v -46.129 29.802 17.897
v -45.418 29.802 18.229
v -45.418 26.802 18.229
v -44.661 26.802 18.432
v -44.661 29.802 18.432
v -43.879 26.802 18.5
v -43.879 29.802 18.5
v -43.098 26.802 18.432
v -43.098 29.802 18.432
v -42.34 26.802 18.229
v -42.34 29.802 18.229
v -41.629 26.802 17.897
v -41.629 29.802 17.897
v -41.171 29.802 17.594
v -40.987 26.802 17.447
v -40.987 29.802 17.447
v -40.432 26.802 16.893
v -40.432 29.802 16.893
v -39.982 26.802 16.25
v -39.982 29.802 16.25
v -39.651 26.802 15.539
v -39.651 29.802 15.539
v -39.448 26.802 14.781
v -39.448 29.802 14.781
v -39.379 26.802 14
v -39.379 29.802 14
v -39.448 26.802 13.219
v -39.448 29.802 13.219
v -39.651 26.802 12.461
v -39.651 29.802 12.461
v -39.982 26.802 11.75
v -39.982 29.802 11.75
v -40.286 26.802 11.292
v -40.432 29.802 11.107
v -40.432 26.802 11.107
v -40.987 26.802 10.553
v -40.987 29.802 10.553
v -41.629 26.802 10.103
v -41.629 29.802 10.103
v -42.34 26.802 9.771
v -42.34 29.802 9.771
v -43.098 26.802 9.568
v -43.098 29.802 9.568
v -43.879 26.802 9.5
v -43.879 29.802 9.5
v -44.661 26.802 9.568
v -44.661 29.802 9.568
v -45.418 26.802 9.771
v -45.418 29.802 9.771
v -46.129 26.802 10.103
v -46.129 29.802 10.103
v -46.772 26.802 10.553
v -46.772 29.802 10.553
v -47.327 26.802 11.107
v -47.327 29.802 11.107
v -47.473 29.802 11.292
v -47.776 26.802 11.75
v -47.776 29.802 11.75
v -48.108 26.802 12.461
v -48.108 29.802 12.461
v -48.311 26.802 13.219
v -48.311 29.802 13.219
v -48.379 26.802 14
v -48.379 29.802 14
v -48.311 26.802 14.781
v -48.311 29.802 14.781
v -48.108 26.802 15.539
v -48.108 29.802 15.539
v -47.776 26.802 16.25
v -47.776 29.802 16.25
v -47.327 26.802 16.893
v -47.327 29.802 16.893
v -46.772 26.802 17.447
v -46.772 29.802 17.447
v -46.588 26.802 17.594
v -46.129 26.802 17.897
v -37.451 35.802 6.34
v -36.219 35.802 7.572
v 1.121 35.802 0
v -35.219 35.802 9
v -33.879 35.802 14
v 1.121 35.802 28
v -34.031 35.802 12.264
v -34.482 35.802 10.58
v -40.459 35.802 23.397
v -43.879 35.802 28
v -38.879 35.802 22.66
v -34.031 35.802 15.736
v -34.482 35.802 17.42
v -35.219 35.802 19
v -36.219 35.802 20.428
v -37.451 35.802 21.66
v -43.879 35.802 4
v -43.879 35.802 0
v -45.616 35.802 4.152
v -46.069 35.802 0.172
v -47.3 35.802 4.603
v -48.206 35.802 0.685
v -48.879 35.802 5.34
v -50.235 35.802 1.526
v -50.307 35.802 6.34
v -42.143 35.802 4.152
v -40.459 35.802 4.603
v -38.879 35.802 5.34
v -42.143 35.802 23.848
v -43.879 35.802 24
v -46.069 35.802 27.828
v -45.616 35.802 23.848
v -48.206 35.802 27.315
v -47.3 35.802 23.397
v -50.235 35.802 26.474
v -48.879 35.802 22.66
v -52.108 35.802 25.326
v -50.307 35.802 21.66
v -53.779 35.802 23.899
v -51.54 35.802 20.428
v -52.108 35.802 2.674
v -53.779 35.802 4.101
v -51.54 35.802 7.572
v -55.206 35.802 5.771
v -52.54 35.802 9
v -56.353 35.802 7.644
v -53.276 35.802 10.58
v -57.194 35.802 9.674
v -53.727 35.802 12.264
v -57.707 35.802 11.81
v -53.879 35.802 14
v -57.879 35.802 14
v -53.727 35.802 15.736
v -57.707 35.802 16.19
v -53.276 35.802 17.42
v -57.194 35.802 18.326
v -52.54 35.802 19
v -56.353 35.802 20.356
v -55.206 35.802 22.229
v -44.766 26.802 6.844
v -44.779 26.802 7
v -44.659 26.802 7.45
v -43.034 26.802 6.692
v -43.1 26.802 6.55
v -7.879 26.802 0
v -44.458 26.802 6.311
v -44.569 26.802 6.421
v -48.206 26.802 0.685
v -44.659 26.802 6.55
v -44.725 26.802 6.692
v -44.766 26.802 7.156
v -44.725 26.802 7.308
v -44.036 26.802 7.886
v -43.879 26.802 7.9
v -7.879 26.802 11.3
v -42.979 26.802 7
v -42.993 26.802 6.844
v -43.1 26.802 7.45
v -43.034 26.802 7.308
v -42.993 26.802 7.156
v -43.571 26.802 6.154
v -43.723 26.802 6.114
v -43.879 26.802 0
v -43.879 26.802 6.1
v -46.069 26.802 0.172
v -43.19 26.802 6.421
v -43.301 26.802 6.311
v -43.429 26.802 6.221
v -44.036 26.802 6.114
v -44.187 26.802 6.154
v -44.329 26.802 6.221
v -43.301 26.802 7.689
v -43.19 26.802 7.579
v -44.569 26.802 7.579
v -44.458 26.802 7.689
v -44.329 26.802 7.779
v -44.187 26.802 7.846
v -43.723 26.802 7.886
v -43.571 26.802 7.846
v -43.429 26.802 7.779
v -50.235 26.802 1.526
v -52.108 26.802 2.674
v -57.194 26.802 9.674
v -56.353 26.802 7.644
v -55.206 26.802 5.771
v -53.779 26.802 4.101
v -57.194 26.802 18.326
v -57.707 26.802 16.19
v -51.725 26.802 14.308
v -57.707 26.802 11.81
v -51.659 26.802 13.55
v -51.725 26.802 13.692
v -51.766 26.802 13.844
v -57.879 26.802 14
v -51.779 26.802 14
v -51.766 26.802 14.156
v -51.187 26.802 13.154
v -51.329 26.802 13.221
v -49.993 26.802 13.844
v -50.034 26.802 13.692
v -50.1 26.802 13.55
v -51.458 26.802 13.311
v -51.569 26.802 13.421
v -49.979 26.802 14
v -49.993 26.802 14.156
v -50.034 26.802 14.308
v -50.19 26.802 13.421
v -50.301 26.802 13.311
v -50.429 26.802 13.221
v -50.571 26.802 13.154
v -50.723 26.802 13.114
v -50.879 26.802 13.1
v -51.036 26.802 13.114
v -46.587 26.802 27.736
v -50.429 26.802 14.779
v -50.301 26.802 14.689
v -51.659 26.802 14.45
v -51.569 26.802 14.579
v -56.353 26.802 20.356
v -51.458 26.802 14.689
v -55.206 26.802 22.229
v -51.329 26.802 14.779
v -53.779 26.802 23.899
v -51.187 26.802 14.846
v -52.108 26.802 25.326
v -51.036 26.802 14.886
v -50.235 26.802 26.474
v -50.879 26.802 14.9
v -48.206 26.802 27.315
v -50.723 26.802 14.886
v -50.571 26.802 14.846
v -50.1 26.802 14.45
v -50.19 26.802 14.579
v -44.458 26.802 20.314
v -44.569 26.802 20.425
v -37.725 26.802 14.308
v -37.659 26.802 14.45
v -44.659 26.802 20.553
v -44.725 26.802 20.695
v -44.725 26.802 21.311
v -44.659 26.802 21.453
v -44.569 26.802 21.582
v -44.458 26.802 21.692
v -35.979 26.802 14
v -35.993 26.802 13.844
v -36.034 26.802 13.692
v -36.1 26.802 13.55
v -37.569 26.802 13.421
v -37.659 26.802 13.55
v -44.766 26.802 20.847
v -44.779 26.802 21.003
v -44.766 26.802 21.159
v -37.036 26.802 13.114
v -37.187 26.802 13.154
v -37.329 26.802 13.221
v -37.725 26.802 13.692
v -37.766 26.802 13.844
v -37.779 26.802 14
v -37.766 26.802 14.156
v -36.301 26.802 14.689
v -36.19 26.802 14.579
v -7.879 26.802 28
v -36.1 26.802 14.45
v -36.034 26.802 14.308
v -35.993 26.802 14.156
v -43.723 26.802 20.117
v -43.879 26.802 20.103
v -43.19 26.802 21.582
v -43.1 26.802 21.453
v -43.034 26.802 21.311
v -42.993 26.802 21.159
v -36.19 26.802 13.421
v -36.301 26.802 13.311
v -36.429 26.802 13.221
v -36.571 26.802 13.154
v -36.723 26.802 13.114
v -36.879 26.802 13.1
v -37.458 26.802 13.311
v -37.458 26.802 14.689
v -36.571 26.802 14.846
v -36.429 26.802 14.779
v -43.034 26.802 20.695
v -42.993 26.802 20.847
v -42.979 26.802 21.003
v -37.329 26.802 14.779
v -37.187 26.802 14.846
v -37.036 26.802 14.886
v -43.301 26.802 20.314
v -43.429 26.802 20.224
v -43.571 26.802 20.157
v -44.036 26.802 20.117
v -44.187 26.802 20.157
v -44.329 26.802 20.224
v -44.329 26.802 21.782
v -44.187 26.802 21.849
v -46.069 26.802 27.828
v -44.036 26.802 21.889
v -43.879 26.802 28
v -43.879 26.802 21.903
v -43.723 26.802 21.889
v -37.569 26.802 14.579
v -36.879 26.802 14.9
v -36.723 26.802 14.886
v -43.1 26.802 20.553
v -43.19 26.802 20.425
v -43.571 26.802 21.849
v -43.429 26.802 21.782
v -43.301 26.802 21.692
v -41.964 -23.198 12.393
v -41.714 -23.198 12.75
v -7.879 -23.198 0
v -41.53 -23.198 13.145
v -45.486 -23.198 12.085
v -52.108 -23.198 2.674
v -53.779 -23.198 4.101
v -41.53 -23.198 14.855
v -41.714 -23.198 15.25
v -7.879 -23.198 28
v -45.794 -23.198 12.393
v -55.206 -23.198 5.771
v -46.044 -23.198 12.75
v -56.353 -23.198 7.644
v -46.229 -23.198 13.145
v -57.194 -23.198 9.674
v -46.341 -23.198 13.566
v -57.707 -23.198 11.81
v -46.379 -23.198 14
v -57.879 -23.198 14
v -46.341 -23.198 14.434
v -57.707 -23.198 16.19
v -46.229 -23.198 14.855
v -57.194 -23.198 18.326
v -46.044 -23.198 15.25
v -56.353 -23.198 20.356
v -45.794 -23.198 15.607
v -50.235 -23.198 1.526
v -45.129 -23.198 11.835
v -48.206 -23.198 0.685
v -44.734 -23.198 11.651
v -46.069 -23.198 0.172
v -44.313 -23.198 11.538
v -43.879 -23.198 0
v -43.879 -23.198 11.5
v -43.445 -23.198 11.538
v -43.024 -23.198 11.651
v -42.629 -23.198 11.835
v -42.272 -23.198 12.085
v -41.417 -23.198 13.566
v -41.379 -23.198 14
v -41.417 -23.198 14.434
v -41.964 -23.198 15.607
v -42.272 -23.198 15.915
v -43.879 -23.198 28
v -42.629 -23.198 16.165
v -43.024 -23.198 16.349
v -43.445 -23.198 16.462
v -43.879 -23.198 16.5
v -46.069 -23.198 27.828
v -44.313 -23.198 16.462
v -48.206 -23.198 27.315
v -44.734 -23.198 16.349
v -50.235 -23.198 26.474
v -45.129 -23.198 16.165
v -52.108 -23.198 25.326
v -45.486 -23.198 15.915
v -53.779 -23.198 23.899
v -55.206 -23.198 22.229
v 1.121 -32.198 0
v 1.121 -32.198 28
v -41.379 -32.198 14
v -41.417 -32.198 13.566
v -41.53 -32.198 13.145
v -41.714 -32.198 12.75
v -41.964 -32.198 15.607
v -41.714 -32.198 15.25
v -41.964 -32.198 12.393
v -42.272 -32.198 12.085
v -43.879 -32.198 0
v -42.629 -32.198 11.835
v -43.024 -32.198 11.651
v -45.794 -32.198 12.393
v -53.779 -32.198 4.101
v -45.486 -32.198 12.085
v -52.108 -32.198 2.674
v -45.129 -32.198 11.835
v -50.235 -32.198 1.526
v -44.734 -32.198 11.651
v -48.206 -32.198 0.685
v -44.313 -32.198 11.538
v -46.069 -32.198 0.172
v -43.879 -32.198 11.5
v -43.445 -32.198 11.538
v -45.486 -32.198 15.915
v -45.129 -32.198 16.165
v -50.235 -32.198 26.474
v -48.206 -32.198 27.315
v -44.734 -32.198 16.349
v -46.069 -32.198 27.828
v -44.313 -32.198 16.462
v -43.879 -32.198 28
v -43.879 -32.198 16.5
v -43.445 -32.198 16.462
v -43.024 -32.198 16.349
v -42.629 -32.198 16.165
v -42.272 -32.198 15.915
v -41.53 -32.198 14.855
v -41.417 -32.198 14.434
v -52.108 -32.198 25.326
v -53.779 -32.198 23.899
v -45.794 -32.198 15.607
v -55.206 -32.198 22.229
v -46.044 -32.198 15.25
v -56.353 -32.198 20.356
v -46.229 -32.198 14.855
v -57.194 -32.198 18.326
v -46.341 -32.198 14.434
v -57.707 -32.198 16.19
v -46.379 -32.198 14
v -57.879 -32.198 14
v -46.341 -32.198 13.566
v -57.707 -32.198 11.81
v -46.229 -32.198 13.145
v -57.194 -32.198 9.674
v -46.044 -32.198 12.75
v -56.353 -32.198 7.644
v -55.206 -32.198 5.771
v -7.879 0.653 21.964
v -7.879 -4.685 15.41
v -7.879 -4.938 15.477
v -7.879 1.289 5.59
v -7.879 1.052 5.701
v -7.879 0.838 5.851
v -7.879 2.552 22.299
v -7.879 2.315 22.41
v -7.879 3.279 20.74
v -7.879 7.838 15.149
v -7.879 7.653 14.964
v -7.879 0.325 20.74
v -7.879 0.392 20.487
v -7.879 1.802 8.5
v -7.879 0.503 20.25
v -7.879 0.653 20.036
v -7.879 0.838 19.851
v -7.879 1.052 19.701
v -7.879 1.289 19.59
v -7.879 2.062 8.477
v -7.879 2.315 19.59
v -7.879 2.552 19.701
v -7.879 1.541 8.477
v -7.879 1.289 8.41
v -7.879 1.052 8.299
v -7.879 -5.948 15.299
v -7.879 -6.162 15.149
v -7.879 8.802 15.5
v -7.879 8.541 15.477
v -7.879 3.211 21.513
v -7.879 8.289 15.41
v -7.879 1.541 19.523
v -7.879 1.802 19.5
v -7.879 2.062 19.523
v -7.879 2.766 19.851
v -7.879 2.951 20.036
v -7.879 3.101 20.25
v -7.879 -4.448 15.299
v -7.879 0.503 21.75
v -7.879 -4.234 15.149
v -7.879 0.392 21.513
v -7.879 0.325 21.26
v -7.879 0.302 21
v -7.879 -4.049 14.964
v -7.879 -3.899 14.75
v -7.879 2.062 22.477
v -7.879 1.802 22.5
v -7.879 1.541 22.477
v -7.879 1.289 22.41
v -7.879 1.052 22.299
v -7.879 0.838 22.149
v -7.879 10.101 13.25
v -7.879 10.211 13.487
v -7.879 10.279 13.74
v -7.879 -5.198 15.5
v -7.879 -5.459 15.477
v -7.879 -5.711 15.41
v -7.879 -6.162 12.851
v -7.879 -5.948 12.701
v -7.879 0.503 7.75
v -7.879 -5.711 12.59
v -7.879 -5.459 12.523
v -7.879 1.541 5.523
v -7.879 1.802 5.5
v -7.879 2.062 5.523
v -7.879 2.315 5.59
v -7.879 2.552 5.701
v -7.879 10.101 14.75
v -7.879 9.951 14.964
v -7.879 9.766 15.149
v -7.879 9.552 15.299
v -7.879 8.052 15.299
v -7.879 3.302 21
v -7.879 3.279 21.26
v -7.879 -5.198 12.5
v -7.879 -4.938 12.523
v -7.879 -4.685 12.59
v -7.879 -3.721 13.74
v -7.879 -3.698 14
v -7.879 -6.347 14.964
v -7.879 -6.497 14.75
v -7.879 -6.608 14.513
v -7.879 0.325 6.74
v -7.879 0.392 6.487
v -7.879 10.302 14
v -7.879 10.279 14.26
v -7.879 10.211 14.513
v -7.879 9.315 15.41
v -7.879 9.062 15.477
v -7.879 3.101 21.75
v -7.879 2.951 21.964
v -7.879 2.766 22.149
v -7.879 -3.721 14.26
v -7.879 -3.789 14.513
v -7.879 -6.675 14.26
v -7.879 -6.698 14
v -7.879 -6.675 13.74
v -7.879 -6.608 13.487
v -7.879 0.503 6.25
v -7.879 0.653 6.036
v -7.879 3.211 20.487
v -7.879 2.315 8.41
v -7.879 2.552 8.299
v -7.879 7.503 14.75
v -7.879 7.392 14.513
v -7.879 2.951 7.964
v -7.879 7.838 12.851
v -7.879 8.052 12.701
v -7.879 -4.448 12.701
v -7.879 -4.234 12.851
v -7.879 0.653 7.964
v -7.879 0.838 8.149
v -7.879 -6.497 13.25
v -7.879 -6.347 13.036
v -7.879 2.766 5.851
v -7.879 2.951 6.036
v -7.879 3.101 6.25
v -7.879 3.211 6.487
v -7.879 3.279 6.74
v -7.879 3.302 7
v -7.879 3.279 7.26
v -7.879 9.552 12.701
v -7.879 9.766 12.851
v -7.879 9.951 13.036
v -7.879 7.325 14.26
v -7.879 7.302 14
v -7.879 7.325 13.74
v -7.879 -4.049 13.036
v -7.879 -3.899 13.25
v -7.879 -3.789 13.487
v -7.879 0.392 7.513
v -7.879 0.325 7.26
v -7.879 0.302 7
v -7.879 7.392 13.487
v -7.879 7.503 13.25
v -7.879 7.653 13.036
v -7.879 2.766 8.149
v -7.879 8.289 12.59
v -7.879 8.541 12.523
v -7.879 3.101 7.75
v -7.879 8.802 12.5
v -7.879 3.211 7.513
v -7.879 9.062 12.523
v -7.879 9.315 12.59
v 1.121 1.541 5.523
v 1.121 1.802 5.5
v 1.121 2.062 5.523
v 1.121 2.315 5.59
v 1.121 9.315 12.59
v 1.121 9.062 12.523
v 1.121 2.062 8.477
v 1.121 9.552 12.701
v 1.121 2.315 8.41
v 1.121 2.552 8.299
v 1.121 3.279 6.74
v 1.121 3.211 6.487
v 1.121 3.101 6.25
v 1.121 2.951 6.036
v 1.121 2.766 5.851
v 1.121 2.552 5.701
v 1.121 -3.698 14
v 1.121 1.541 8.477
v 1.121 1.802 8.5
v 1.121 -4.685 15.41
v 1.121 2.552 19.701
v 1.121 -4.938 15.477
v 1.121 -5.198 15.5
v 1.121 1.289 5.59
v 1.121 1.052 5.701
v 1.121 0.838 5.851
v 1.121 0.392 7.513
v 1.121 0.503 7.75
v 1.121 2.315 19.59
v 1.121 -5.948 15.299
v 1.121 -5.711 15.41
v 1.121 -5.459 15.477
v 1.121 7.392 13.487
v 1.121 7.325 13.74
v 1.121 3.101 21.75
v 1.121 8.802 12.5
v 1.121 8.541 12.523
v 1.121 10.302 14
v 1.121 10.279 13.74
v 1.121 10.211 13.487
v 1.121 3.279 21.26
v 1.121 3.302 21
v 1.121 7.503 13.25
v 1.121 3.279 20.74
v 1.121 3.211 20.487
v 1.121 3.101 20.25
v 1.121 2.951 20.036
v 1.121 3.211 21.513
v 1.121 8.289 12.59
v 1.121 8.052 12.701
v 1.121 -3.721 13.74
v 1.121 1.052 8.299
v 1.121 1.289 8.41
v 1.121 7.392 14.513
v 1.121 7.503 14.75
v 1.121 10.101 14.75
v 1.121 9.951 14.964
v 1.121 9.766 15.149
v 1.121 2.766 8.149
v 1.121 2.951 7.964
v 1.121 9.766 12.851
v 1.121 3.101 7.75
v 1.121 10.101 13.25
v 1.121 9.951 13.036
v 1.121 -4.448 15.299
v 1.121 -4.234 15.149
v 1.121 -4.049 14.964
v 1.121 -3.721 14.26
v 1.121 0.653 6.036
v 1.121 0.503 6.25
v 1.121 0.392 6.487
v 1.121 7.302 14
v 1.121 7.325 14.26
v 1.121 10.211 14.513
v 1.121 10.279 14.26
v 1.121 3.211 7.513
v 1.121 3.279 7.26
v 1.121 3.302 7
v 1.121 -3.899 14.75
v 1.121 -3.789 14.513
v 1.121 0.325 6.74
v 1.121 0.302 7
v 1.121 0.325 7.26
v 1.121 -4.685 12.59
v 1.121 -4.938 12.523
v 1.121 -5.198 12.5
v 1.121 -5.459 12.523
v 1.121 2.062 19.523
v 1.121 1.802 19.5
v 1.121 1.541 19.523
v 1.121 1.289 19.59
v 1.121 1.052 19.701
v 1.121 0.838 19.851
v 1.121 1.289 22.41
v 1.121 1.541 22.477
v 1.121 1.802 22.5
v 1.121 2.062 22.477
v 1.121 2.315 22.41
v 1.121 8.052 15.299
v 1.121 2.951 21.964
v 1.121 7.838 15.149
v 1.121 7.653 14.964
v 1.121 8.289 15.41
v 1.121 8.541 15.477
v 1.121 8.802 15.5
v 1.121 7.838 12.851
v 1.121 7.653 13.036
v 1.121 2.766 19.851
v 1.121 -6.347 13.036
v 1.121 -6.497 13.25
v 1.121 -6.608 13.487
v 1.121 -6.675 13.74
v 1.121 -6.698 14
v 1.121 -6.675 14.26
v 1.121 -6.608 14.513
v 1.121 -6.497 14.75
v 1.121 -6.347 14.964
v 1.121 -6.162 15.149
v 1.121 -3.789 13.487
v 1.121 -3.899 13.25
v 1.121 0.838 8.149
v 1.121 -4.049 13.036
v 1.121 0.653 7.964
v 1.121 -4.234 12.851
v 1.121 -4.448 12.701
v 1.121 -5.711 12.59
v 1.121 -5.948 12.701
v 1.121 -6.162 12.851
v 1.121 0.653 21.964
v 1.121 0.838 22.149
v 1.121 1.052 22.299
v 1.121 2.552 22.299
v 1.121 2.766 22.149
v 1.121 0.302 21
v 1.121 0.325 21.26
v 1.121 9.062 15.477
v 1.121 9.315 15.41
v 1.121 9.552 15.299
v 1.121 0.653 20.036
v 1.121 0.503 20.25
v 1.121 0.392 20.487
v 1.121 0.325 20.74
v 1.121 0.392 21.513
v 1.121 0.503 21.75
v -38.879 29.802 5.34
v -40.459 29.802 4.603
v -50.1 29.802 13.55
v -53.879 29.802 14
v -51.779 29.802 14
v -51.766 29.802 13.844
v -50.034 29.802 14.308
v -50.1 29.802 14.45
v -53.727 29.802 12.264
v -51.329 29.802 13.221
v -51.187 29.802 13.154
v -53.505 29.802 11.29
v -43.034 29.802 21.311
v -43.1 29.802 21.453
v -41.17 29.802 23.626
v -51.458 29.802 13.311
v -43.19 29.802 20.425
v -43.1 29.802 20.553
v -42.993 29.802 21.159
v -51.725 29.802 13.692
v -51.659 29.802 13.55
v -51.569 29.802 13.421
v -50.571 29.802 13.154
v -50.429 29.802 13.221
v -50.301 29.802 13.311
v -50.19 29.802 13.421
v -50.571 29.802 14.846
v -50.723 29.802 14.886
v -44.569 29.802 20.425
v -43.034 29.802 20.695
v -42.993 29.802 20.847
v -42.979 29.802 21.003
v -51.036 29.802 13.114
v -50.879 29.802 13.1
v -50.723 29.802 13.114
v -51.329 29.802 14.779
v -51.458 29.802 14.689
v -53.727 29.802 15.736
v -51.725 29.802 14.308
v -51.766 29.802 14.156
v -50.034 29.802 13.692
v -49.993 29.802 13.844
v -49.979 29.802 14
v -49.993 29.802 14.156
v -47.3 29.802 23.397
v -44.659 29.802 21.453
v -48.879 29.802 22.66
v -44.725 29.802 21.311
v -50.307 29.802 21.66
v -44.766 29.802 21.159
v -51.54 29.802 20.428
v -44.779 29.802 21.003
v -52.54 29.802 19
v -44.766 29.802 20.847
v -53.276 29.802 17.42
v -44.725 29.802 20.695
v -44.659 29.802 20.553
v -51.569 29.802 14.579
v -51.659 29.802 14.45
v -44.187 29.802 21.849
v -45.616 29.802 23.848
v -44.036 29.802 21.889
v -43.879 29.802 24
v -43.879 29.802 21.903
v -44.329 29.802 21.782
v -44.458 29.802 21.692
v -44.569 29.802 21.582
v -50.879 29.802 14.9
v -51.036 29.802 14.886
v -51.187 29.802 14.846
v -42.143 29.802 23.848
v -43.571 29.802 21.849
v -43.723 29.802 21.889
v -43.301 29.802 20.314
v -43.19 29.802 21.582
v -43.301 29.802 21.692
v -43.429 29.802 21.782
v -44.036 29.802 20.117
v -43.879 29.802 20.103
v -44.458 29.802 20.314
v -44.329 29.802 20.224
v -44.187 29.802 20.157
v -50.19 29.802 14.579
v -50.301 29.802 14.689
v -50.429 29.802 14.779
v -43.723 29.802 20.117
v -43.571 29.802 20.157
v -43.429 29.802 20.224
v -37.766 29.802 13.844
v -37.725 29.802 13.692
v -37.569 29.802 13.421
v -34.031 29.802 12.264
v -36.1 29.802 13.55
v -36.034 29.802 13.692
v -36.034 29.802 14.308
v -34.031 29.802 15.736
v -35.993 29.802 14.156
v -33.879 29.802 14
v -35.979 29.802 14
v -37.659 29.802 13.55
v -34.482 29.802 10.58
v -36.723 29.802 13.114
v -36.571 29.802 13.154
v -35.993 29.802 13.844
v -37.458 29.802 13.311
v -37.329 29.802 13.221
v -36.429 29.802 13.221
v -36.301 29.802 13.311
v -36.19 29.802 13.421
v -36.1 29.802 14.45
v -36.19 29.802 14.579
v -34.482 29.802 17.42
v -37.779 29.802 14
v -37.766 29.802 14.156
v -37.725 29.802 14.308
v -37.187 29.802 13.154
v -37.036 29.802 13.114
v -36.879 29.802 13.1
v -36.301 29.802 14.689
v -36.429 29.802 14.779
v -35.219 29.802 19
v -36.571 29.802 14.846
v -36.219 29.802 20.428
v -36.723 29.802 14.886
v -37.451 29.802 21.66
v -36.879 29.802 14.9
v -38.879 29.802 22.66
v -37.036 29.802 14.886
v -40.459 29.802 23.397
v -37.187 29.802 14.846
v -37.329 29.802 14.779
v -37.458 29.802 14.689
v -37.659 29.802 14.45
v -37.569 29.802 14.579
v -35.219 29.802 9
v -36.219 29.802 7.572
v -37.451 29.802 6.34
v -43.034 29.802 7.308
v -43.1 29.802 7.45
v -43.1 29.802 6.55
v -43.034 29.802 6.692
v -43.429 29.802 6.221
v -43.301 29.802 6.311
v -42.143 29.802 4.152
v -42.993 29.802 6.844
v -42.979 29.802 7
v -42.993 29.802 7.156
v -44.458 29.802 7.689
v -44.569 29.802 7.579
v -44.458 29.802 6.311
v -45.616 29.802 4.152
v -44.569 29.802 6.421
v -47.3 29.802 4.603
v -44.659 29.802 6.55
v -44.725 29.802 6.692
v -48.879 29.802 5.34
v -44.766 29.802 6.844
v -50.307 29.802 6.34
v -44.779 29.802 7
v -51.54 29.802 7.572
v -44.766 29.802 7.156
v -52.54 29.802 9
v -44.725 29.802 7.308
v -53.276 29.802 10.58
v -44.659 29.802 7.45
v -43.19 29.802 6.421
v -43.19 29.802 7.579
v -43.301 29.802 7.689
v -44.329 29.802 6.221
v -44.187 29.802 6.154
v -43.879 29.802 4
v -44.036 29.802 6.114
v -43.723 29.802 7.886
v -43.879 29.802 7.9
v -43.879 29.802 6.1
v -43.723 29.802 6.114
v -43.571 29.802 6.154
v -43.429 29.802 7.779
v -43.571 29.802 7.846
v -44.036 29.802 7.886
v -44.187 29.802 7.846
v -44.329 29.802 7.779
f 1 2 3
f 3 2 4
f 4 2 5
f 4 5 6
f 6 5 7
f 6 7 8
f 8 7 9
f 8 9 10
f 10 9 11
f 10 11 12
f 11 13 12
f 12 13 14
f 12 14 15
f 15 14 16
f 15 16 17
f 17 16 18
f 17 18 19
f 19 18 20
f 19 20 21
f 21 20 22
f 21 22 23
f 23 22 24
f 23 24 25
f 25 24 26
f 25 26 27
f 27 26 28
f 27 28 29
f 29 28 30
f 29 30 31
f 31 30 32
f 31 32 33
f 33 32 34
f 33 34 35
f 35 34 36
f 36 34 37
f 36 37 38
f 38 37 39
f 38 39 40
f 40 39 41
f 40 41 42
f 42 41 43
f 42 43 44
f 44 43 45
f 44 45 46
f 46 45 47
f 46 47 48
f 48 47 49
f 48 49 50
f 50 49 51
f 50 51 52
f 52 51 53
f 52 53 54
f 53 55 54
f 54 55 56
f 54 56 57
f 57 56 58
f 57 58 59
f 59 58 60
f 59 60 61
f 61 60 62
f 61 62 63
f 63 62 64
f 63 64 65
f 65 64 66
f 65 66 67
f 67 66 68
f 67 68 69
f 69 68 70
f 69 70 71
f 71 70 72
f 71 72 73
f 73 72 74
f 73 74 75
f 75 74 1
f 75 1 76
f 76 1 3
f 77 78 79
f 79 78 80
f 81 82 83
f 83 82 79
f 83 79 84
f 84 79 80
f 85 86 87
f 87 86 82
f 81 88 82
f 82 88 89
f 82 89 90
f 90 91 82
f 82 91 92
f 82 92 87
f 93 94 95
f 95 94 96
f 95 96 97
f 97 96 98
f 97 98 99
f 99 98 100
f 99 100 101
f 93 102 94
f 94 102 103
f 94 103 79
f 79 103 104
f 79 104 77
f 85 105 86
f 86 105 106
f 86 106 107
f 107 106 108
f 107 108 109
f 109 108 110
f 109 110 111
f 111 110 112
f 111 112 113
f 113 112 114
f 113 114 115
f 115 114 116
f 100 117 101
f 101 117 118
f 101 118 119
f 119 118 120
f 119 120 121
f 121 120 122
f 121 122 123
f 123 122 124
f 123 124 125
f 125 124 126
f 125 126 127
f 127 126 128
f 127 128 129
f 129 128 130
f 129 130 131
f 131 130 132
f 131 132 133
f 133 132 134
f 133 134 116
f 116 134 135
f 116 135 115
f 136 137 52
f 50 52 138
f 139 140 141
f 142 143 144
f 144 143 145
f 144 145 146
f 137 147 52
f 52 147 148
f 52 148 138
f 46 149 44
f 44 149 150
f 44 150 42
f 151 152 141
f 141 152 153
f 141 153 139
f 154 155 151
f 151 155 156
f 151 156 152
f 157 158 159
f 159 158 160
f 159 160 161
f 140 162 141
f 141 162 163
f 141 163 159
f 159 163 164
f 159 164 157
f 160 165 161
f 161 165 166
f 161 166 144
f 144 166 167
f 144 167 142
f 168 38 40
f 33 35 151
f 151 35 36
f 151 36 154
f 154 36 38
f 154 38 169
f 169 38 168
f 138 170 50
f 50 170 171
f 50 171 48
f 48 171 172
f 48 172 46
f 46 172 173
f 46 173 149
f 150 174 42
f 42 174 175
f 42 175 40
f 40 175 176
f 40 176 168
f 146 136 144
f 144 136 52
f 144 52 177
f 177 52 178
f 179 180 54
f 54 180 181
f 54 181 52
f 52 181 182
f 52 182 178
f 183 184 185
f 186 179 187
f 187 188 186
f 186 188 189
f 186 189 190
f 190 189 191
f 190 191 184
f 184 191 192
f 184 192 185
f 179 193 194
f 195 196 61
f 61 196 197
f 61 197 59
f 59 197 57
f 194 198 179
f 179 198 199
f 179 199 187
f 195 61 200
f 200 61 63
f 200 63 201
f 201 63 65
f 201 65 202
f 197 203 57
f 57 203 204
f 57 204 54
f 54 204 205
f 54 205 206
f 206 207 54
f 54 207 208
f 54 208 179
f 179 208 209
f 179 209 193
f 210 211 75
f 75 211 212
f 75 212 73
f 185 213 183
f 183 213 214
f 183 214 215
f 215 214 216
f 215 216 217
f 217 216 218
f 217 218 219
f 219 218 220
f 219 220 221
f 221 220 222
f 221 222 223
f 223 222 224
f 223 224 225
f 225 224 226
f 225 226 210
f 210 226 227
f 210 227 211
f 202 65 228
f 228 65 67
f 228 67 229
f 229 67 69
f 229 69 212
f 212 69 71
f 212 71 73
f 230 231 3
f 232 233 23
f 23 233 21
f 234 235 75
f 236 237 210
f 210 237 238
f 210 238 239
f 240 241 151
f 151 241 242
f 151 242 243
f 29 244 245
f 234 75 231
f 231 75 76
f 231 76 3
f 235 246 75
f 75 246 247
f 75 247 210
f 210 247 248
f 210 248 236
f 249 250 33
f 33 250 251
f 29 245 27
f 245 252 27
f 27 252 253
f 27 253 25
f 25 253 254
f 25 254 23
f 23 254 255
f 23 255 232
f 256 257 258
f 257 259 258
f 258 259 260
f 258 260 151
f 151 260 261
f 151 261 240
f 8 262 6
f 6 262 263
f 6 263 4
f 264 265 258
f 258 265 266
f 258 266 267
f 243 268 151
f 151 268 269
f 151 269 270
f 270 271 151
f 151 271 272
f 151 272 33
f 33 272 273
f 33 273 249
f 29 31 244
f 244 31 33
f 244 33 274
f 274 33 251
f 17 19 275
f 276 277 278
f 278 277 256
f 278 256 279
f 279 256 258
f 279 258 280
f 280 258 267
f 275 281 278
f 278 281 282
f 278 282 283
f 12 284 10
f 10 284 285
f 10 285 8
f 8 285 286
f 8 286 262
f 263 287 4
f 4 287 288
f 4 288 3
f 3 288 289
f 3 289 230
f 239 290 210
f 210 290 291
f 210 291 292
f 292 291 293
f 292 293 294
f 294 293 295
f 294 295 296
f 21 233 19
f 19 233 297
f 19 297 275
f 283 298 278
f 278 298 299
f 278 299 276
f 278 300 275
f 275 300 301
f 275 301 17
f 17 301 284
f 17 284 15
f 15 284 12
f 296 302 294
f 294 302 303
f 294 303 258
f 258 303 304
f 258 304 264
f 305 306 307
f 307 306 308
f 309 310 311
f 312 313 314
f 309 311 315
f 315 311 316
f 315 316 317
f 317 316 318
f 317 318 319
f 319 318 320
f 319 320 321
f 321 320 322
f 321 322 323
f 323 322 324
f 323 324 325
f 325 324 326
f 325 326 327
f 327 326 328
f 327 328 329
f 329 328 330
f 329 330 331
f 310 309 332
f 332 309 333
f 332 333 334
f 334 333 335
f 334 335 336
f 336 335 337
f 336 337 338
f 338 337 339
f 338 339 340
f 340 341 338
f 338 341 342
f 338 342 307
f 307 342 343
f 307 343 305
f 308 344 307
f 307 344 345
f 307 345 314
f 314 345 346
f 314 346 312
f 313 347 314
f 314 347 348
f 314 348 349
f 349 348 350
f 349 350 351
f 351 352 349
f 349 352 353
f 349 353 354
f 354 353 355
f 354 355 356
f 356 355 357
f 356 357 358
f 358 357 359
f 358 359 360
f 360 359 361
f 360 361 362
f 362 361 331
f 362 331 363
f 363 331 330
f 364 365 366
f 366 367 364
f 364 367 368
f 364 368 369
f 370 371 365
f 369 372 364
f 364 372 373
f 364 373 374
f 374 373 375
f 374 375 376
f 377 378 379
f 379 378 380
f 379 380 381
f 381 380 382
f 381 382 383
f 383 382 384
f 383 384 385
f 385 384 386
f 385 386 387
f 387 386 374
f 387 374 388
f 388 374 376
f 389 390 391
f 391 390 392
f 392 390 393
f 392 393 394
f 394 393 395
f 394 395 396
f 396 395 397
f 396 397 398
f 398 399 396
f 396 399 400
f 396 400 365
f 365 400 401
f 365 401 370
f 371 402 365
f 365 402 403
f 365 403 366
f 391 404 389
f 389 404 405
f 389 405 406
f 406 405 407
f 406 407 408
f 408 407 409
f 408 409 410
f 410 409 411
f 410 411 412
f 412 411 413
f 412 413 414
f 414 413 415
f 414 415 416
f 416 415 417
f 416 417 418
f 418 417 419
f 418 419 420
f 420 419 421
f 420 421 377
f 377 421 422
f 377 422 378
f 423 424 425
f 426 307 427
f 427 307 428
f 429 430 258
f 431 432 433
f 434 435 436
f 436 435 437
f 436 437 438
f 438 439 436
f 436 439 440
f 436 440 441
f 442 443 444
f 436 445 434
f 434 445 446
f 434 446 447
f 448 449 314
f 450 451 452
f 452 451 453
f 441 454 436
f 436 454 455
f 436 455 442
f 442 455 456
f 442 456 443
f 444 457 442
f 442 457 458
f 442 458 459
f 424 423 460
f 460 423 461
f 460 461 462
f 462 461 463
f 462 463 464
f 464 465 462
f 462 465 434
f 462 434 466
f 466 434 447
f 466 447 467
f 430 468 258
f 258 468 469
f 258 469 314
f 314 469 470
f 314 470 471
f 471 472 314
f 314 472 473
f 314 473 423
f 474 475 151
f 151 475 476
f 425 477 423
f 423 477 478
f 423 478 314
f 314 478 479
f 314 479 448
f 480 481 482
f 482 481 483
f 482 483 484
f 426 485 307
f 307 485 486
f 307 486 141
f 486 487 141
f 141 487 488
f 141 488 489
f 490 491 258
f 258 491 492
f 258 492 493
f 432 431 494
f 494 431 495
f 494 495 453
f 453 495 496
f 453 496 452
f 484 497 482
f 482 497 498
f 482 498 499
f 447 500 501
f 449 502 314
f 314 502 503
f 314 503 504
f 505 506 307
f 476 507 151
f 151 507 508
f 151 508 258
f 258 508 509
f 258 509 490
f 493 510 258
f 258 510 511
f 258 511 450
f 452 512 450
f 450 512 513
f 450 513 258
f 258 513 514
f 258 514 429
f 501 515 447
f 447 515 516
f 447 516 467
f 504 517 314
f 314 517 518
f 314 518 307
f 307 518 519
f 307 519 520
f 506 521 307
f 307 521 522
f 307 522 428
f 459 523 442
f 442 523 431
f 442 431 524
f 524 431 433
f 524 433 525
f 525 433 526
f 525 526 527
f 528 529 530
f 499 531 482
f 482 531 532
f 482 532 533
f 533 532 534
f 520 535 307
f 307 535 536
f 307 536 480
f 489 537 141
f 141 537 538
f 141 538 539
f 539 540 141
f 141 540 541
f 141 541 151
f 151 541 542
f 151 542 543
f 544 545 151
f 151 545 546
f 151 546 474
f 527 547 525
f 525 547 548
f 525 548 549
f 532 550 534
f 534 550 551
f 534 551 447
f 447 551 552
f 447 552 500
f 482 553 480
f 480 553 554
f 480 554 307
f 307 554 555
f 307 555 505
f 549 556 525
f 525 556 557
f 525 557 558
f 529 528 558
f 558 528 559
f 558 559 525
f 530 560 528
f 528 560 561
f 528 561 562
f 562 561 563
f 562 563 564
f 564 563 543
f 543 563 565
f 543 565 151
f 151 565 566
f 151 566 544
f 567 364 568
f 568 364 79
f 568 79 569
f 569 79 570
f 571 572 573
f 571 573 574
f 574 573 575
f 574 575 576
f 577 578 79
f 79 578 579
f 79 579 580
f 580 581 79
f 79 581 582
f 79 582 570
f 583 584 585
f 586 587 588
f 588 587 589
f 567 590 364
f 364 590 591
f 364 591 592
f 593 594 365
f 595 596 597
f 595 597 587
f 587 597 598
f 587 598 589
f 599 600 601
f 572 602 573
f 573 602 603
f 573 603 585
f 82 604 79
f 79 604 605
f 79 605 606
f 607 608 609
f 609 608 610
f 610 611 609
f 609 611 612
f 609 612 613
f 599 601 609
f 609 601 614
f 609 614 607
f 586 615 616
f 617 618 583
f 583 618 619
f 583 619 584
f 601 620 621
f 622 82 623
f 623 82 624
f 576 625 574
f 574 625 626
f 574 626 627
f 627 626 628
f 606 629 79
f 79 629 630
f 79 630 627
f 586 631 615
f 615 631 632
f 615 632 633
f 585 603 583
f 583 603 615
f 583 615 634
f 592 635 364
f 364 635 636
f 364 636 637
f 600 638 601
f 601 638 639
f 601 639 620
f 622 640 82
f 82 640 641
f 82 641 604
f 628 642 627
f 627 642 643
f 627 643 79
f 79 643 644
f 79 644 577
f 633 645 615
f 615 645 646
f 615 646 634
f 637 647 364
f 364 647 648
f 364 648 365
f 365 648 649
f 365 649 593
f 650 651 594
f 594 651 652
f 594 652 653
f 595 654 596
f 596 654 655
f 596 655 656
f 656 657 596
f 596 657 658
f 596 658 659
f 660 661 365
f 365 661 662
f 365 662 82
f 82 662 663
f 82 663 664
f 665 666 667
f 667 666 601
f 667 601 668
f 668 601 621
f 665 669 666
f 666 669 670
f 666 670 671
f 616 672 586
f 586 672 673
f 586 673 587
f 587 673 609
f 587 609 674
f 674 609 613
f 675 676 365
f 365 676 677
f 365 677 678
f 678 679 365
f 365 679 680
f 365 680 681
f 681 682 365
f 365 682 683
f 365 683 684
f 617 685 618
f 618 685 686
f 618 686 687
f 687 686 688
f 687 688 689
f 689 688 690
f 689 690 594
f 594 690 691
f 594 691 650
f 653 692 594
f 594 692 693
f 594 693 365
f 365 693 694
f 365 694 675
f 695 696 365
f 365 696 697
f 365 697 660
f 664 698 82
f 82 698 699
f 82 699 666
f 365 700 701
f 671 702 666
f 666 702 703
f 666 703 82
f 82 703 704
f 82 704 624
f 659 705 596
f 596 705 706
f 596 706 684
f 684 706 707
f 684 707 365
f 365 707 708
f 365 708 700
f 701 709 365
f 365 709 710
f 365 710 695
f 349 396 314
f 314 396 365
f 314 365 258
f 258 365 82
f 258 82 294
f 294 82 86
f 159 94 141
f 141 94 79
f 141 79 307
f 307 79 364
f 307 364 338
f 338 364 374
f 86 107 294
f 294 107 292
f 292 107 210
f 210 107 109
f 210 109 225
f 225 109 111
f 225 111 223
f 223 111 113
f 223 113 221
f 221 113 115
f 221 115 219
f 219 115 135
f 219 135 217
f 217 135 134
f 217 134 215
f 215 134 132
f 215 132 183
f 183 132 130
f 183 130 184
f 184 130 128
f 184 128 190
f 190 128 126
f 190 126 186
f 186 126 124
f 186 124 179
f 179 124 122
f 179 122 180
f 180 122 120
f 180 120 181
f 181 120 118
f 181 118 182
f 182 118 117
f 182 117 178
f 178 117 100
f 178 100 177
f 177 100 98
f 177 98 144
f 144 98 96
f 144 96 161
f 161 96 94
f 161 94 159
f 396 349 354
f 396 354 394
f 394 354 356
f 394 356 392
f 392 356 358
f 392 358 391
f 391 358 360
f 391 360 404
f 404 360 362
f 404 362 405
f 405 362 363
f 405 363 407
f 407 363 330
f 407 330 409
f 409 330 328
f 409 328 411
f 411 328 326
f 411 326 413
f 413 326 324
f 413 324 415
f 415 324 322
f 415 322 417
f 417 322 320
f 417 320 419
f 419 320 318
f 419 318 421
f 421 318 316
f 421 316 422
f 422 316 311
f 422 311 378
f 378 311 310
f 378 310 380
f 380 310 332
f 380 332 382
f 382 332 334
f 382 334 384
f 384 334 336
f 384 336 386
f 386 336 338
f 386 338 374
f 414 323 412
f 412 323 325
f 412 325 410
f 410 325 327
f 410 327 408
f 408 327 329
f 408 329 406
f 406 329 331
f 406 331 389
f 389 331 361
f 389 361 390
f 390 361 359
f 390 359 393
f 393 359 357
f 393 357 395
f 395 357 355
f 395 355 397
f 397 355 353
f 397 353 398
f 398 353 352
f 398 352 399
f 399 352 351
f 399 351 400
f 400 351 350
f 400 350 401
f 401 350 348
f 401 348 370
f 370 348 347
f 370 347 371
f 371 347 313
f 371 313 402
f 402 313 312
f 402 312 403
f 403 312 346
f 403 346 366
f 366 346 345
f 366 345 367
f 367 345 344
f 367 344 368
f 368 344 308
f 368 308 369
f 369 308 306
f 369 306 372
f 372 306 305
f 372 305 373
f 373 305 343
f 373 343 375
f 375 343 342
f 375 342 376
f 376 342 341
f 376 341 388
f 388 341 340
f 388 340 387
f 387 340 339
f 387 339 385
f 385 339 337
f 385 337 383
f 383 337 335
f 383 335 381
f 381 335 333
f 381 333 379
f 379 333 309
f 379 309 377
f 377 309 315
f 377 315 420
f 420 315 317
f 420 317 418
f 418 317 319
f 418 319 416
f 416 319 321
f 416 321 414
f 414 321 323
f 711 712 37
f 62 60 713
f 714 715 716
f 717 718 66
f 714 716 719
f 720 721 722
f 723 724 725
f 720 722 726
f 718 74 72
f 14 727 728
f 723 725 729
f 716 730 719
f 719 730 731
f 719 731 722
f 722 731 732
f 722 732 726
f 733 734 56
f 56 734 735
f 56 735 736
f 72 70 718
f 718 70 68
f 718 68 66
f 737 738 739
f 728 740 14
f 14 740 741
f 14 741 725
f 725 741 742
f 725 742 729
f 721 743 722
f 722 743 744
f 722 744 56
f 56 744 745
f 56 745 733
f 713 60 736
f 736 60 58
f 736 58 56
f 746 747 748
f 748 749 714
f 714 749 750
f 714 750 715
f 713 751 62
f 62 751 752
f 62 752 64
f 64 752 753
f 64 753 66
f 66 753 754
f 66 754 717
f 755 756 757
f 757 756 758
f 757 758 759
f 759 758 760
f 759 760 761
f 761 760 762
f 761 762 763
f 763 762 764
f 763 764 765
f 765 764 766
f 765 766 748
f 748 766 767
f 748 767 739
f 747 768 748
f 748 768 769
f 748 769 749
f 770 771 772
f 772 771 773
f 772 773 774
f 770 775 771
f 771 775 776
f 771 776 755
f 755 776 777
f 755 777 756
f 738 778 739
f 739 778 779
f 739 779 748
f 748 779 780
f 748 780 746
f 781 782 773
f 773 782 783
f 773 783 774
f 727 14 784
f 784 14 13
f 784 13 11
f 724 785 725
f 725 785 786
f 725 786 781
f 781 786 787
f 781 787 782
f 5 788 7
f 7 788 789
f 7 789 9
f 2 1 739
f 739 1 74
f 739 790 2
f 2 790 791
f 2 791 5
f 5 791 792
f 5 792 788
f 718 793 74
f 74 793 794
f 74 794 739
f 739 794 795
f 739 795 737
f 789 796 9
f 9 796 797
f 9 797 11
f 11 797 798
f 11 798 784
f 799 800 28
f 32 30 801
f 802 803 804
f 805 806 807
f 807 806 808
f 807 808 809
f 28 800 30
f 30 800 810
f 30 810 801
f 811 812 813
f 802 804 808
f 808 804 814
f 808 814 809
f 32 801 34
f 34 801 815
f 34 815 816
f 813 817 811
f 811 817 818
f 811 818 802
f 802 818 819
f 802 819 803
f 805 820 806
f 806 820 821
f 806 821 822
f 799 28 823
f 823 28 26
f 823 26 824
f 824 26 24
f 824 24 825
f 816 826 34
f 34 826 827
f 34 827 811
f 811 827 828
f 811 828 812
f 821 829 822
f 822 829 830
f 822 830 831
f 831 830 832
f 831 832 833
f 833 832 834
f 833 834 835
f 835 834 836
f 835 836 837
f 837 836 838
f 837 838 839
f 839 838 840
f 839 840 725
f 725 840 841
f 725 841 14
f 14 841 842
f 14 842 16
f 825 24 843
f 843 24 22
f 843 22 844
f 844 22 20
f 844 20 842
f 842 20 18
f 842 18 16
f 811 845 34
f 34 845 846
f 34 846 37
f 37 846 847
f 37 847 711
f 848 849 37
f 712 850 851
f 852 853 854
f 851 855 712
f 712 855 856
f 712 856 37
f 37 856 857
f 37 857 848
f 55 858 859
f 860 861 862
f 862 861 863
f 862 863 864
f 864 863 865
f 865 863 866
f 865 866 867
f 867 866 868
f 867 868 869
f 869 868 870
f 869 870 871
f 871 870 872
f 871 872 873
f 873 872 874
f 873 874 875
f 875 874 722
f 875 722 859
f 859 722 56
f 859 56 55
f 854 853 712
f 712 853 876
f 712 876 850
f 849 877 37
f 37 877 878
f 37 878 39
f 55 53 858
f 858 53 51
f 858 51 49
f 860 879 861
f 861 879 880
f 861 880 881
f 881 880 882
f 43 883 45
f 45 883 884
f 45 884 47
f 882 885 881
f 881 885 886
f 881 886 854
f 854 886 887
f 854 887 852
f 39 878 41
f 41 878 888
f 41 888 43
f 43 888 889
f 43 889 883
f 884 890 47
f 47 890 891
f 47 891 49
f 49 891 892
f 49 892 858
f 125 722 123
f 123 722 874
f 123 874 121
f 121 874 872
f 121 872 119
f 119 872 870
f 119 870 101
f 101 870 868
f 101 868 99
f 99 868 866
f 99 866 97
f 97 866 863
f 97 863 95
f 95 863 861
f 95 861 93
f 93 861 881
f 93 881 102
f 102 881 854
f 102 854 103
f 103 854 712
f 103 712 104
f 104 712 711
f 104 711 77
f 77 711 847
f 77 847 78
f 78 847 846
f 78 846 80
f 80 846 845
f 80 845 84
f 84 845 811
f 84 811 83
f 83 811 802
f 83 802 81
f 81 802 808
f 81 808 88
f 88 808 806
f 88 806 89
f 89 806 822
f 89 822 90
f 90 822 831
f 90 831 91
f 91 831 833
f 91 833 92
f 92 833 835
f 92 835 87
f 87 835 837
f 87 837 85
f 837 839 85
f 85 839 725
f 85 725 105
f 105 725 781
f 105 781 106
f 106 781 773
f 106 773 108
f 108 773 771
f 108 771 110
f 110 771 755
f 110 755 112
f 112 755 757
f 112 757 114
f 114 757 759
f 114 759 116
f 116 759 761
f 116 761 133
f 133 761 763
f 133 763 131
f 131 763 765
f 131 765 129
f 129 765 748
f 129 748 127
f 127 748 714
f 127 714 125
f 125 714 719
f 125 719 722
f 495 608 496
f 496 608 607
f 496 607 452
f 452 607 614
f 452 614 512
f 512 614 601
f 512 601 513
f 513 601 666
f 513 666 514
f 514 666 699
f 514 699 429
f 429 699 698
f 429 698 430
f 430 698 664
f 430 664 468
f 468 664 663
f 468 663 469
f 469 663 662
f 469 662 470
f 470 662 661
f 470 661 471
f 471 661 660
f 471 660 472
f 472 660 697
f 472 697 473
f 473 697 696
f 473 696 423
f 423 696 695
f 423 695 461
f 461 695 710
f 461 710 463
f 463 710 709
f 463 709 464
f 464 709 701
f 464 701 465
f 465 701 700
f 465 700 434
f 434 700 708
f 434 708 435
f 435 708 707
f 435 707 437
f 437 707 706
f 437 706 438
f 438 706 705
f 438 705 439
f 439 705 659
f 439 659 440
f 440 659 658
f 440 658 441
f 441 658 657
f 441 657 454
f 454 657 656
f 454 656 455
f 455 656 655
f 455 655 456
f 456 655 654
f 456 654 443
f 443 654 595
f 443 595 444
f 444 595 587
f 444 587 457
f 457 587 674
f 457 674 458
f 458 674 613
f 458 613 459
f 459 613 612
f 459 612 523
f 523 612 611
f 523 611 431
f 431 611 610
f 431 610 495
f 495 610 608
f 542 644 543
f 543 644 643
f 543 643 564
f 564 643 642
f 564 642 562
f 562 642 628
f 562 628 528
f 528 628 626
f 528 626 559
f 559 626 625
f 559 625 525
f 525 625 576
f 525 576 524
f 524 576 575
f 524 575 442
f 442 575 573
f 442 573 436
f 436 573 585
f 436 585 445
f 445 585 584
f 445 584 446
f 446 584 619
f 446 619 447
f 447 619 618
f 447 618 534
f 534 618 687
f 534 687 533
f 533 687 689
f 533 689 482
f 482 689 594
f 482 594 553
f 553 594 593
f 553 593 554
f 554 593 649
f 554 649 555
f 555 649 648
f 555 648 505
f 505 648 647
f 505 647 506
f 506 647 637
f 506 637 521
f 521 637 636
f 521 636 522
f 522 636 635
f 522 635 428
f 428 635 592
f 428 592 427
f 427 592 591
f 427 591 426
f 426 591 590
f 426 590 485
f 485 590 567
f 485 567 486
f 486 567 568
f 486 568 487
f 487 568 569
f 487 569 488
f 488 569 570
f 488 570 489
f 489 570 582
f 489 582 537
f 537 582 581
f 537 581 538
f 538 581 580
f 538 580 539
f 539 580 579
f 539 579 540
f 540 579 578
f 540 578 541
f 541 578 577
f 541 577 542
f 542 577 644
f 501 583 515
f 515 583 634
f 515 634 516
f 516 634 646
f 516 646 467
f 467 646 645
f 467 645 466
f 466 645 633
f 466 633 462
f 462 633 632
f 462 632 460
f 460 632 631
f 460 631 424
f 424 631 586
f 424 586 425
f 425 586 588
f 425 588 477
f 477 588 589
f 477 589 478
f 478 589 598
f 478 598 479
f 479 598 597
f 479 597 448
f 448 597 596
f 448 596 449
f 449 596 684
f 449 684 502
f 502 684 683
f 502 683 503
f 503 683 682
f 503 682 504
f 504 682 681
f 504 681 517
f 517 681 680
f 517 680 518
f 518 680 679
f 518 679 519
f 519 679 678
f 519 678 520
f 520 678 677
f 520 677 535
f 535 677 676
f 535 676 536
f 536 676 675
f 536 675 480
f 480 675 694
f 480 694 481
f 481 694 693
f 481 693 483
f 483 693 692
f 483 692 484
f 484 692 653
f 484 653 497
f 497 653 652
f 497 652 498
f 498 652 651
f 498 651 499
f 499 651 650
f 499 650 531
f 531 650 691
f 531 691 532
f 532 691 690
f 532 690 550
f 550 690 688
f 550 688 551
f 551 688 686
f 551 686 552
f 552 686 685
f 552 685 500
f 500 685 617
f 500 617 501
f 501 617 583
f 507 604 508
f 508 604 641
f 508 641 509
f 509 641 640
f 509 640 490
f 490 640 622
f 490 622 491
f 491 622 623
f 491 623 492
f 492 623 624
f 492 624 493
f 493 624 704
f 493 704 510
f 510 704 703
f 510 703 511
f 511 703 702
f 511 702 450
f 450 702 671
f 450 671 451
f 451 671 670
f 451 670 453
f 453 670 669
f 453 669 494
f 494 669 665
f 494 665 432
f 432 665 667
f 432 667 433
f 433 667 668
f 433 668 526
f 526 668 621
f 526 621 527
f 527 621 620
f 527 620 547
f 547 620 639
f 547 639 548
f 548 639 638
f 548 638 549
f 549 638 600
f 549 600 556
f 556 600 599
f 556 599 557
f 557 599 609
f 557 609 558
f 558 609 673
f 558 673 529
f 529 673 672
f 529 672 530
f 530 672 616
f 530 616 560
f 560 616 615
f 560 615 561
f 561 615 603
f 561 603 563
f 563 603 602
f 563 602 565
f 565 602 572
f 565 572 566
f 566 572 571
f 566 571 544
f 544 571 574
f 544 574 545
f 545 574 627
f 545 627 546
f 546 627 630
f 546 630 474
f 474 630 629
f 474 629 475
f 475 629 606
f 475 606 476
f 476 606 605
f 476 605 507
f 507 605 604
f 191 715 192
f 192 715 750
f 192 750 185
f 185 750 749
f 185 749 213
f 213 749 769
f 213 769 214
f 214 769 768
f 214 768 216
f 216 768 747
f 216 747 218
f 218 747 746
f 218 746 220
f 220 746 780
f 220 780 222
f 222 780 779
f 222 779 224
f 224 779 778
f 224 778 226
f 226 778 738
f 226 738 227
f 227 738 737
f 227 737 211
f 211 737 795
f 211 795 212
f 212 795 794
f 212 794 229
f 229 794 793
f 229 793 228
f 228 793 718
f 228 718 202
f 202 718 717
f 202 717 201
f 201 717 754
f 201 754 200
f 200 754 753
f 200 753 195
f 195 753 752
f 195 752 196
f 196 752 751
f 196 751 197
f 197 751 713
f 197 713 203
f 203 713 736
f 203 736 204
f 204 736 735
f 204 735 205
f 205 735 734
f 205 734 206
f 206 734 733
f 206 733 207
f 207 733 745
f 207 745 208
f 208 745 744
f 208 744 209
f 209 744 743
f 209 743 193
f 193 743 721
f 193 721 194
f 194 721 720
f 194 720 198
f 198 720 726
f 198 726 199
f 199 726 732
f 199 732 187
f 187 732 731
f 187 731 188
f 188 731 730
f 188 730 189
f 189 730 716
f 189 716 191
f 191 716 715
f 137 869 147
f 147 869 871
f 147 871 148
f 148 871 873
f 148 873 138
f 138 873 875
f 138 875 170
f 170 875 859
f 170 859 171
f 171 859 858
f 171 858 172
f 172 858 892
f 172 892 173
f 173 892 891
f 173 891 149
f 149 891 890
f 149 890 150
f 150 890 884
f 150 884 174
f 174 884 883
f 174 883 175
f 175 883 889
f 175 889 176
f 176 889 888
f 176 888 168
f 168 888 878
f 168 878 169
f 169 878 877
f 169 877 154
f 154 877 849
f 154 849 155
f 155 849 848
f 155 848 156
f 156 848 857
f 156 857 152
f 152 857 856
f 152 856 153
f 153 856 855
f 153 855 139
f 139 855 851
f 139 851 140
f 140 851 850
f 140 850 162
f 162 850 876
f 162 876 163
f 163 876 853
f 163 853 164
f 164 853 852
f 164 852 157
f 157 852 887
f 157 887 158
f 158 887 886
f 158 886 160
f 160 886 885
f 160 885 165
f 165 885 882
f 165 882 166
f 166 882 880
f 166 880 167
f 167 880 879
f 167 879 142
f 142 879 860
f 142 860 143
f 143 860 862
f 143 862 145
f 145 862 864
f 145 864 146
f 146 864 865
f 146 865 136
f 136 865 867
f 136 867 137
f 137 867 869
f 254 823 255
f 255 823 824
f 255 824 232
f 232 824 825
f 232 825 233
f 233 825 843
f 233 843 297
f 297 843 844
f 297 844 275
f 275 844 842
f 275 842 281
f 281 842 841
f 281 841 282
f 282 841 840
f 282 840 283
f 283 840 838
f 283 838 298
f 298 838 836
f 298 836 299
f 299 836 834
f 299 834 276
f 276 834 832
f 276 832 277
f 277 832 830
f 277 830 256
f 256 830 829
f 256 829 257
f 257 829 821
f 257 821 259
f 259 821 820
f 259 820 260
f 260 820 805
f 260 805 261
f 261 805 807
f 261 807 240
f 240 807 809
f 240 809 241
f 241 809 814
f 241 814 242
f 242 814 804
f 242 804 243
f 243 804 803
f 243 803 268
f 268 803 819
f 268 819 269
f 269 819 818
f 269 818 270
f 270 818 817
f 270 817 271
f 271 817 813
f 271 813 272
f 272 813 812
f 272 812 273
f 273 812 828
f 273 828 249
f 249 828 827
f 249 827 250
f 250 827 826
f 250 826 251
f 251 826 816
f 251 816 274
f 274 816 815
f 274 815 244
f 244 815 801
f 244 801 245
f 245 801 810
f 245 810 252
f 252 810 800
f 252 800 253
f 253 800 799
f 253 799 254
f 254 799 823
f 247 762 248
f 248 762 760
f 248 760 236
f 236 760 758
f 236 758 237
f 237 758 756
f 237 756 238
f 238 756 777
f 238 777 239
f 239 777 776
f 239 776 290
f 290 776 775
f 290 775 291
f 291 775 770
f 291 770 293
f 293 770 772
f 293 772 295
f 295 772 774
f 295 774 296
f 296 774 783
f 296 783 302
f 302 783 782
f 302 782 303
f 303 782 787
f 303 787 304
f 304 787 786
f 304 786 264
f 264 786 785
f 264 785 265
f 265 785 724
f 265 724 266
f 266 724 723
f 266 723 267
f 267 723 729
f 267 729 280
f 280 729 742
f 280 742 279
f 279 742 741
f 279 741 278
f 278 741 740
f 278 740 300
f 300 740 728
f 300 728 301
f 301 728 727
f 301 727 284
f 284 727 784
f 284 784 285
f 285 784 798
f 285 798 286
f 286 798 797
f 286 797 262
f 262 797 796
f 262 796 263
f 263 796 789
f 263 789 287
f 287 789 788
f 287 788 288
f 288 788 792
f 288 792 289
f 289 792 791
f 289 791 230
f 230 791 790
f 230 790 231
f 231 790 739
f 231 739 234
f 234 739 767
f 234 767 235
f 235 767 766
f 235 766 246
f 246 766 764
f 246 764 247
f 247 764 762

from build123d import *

# Parameters (mm, degrees)
SKETCH1_W           = 50
SKETCH1_H           = 9
SKETCH1_W_2         = 9
SKETCH1_H_2         = 68
BOSS_EXTRUDE1_DEPTH = 28
SKETCH2_R           = 2.5
CUT_EXTRUDE2_DEPTH  = 100
SKETCH4_R           = 4.5
CUT_EXTRUDE3_DEPTH  = 10
SKETCH5_R           = 10
CUT_EXTRUDE4_DEPTH  = 6
SKETCH7_R           = 1.5
CUT_EXTRUDE5_DEPTH  = 10
CUT_EXTRUDE6_DEPTH  = 10


with BuildPart() as part:
    # Sketch1 → Boss-Extrude1 (new body)
    with BuildSketch(Plane.XY):
        with Locations((-32.879310345, 31.301724138)):
            Rectangle(SKETCH1_W, SKETCH1_H)
        with Locations((-3.379310345, 1.801724138)):
            Rectangle(SKETCH1_W_2, SKETCH1_H_2)
        with Locations((-32.879310345, -27.698275862)):
            Rectangle(SKETCH1_W, SKETCH1_H)
    extrude(amount=BOSS_EXTRUDE1_DEPTH)

    # Sketch2 → Cut-Extrude2 (cut)
    with BuildSketch(Plane(origin=(0, 35.801724138, 0), x_dir=(1, 0, 0), z_dir=(0, 1, 0))):
        with Locations(Location((-43.879310345, -14, 0), (0, 0, 180))):
            Circle(SKETCH2_R)
        with BuildLine():
            ThreePointArc((-43.879310345, -28), (-53.778805281, -23.899494937), (-57.879310345, -14))
            Line((-57.879310345, -14), (-57.879310345, -28))
            Line((-57.879310345, -28), (-43.879310345, -28))
        make_face()
        with BuildLine():
            Line((-57.879310345, 0), (-57.879310345, -14))
            ThreePointArc((-57.879310345, -14), (-53.778805281, -4.100505063), (-43.879310345, 0))
            Line((-43.879310345, 0), (-57.879310345, 0))
        make_face()
    extrude(amount=-CUT_EXTRUDE2_DEPTH, mode=Mode.SUBTRACT)

    # Sketch4 → Cut-Extrude3 (cut)
    with BuildSketch(Plane(origin=(0, 35.801724138, 0), x_dir=(1, 0, 0), z_dir=(0, 1, 0))):
        with Locations(Location((-43.879310345, -14, 0), (0, 0, 180))):
            Circle(SKETCH4_R)
    extrude(amount=-CUT_EXTRUDE3_DEPTH, mode=Mode.SUBTRACT)

    # Sketch5 → Cut-Extrude4 (cut)
    with BuildSketch(Plane(origin=(0, 35.801724138, 0), x_dir=(1, 0, 0), z_dir=(0, 1, 0))):
        with Locations(Location((-43.879310345, -14, 0), (0, 0, 180))):
            Circle(SKETCH5_R)
    extrude(amount=-CUT_EXTRUDE4_DEPTH, mode=Mode.SUBTRACT)

    # Sketch7 → Cut-Extrude5 (cut)
    with BuildSketch(Plane(origin=(1.120689655, 0, 0), x_dir=(0, 0, -1), z_dir=(1, 0, 0))):
        with Locations(Location((-14, 8.801724138, 0), (0, 0, 90))):
            Circle(SKETCH7_R)
        with Locations(Location((-14, -5.198275862, 0), (0, 0, 90))):
            Circle(SKETCH7_R)
        with Locations(Location((-7, 1.801724138, 0), (0, 0, 90))):
            Circle(SKETCH7_R)
        with Locations(Location((-21, 1.801724138, 0), (0, 0, 90))):
            Circle(SKETCH7_R)
    extrude(amount=-CUT_EXTRUDE5_DEPTH, mode=Mode.SUBTRACT)

    # Sketch8 → Cut-Extrude6 (cut)
    with BuildSketch(Plane(origin=(0, 29.801724138, 0), x_dir=(1, 0, 0), z_dir=(0, 1, 0))):
        with BuildLine():
            ThreePointArc((-42.979310345, -21.003011395), (-43.242914242, -20.366615292), (-43.879310345, -20.103011395))
            Line((-43.879310345, -20.103011395), (-43.879310345, -21.903011395))
            ThreePointArc((-43.879310345, -21.903011395), (-43.242914242, -21.639407498), (-42.979310345, -21.003011395))
        make_face()
        with BuildLine():
            Line((-43.879310345, -21.903011395), (-43.879310345, -20.103011395))
            ThreePointArc((-43.879310345, -20.103011395), (-44.779310345, -21.003011395), (-43.879310345, -21.903011395))
        make_face()
        with BuildLine():
            ThreePointArc((-35.979310345, -14), (-36.879310345, -13.1), (-37.779310345, -14))
            Line((-37.779310345, -14), (-35.979310345, -14))
        make_face()
        with BuildLine():
            Line((-35.979310345, -14), (-37.779310345, -14))
            ThreePointArc((-37.779310345, -14), (-36.879310345, -14.9), (-35.979310345, -14))
        make_face()
        with BuildLine():
            ThreePointArc((-43.879310345, -6.1), (-44.779310345, -7), (-43.879310345, -7.9))
            Line((-43.879310345, -7.9), (-43.879310345, -6.1))
        make_face()
        with BuildLine():
            Line((-43.879310345, -6.1), (-43.879310345, -7.9))
            ThreePointArc((-43.879310345, -7.9), (-43.242914242, -7.636396103), (-42.979310345, -7))
            ThreePointArc((-42.979310345, -7), (-43.242914242, -6.363603897), (-43.879310345, -6.1))
        make_face()
        with BuildLine():
            ThreePointArc((-51.779310345, -14), (-50.879310345, -14.9), (-49.979310345, -14))
            Line((-49.979310345, -14), (-51.779310345, -14))
        make_face()
        with BuildLine():
            Line((-51.779310345, -14), (-49.979310345, -14))
            ThreePointArc((-49.979310345, -14), (-50.879310345, -13.1), (-51.779310345, -14))
        make_face()
    extrude(amount=-CUT_EXTRUDE6_DEPTH, mode=Mode.SUBTRACT)


solid = part.part
